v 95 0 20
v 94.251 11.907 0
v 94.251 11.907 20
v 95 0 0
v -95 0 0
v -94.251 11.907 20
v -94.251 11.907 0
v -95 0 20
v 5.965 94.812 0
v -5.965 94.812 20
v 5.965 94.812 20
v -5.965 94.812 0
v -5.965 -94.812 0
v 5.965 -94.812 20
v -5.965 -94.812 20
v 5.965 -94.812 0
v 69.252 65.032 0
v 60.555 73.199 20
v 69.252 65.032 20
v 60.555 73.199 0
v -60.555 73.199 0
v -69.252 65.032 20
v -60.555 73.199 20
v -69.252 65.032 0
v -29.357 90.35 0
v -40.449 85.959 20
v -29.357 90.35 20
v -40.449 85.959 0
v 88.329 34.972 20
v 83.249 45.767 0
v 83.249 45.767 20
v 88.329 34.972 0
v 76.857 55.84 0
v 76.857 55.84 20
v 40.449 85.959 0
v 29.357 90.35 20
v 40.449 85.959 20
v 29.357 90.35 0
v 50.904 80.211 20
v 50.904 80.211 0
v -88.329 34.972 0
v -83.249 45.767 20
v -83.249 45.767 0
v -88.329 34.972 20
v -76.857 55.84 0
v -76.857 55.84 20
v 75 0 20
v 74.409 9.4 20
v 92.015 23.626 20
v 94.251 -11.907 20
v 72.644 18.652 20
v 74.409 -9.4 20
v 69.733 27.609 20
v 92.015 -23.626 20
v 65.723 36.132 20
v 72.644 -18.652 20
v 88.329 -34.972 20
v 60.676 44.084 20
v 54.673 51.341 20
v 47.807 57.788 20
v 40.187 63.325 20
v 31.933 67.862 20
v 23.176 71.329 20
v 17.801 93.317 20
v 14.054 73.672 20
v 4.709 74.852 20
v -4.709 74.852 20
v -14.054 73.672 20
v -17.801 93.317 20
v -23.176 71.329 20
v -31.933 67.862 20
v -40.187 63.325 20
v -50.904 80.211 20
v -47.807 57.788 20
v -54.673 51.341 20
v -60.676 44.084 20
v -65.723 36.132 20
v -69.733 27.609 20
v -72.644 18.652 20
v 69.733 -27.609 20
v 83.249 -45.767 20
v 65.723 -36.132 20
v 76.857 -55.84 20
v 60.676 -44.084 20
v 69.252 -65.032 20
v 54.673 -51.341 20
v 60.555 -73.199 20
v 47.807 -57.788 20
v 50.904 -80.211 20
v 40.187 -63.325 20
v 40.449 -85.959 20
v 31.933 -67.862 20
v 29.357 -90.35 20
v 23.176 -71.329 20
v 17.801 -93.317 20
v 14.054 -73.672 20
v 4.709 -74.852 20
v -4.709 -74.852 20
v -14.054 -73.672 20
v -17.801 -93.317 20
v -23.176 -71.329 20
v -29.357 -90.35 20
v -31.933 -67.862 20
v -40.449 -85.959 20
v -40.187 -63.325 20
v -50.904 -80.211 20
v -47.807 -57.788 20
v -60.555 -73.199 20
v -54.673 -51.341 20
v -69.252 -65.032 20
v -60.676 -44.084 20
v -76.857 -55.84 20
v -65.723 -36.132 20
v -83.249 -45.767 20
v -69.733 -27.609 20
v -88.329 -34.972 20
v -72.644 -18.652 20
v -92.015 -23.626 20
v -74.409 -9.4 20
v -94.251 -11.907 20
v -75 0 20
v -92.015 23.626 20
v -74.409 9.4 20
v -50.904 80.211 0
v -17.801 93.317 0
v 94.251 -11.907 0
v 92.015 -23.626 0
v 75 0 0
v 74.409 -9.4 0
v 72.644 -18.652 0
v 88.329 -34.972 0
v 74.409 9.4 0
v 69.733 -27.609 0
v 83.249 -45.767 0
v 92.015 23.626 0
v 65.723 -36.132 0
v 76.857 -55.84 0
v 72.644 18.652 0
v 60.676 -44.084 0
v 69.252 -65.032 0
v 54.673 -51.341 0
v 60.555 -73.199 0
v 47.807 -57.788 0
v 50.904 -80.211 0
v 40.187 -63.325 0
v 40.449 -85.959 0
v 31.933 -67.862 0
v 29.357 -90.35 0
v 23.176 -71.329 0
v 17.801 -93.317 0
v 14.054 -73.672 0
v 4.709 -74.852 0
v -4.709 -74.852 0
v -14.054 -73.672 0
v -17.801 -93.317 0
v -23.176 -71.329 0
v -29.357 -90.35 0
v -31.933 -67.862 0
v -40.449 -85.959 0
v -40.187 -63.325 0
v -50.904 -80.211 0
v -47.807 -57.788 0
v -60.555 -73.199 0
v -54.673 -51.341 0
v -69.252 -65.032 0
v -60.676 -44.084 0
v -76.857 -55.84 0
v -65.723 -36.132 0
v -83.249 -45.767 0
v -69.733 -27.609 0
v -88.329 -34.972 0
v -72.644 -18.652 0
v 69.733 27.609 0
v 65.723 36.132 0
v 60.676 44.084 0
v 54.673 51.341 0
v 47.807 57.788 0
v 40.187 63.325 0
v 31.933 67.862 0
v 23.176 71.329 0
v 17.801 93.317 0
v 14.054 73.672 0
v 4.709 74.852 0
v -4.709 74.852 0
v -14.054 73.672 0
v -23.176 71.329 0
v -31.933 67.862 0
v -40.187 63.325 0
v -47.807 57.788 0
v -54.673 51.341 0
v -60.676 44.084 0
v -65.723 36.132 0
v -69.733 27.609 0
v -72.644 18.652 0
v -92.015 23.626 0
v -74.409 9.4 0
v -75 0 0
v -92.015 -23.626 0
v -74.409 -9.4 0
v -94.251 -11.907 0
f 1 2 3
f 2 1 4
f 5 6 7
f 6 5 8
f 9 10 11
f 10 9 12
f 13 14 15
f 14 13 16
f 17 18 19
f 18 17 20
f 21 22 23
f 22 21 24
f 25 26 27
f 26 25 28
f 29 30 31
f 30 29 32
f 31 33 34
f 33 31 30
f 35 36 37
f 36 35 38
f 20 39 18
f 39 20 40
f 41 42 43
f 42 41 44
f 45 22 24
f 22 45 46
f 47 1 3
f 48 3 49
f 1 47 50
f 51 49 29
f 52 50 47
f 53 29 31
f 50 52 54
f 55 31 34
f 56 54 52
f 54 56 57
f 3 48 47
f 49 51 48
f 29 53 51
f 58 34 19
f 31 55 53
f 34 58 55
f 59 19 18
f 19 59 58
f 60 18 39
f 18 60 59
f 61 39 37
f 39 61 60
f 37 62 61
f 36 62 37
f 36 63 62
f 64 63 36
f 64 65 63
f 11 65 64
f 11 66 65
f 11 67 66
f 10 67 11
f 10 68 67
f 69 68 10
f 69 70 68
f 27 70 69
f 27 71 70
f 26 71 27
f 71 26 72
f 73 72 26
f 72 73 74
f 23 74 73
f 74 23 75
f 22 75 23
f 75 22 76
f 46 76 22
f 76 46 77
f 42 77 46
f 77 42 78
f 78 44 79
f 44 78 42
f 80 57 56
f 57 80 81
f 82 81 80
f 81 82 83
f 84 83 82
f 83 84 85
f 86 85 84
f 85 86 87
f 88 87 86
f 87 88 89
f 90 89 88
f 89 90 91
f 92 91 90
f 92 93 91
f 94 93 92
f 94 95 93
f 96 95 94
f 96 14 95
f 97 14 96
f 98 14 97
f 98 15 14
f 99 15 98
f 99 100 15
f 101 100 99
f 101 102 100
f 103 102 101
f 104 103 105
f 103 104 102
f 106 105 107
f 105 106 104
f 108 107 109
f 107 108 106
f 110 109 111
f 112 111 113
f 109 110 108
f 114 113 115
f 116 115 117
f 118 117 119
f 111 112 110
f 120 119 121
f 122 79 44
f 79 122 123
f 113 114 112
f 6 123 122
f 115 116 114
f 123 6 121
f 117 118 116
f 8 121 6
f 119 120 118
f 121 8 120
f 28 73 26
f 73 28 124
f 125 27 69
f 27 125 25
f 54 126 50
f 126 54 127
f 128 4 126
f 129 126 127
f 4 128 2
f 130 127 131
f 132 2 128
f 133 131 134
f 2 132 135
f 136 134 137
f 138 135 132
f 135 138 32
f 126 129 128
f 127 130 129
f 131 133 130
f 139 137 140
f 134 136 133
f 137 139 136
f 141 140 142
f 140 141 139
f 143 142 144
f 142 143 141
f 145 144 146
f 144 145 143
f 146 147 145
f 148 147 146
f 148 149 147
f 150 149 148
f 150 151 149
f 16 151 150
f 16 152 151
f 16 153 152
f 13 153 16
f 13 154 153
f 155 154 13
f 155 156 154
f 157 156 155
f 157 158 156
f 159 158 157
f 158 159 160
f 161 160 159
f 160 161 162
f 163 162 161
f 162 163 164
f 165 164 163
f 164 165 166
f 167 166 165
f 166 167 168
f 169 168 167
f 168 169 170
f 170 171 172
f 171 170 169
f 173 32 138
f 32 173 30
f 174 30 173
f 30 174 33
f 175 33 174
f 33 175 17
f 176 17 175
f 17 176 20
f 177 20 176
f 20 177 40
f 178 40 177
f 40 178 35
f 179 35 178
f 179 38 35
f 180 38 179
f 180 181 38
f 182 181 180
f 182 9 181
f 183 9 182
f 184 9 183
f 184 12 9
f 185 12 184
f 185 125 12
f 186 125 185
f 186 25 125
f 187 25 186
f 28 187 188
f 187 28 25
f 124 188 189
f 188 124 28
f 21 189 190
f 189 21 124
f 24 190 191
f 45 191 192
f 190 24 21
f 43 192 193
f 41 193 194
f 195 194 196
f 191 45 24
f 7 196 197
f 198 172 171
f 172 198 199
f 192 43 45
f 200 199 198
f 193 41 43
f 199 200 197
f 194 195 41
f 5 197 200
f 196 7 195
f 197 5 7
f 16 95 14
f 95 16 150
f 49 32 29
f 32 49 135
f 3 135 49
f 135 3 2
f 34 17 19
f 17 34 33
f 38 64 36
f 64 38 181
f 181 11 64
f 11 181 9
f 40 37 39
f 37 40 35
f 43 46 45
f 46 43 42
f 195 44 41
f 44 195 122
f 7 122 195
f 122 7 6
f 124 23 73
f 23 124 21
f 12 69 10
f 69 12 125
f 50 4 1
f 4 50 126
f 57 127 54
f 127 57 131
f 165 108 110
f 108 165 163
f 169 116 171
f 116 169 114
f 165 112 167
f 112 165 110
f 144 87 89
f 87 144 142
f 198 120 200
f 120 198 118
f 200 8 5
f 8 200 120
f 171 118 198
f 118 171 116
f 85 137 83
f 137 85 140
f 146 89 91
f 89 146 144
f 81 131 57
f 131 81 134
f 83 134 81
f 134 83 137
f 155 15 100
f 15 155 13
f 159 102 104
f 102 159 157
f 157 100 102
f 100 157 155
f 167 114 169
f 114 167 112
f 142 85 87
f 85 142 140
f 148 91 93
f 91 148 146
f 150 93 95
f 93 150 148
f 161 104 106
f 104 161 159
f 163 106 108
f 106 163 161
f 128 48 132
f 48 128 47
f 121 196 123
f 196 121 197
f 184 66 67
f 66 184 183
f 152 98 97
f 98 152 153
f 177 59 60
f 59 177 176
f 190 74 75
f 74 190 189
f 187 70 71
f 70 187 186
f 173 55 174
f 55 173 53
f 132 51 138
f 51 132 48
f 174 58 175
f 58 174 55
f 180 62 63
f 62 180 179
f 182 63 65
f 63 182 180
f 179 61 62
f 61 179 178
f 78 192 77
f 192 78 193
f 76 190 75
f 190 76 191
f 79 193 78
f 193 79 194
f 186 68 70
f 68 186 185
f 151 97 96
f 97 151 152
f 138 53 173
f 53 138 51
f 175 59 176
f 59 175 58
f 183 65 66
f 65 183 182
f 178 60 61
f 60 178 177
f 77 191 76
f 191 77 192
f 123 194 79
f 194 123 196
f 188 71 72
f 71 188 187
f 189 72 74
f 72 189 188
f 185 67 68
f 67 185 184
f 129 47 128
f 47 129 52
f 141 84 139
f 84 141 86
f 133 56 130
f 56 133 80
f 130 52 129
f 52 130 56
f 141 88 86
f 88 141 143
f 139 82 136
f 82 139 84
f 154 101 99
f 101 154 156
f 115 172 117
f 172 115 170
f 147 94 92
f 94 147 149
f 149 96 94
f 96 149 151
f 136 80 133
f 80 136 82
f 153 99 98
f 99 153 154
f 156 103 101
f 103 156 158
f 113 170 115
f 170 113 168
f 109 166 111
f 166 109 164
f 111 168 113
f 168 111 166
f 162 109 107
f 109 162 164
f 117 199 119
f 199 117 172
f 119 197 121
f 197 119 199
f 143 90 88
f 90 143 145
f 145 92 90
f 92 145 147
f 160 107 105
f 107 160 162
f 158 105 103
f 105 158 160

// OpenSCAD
$fn = 50;


difference() {
	union() {
		cylinder(h = 20, r = 95.0000000000);
	}
	union() {
		cylinder(h = 20, r = 75.0000000000);
	}
}
